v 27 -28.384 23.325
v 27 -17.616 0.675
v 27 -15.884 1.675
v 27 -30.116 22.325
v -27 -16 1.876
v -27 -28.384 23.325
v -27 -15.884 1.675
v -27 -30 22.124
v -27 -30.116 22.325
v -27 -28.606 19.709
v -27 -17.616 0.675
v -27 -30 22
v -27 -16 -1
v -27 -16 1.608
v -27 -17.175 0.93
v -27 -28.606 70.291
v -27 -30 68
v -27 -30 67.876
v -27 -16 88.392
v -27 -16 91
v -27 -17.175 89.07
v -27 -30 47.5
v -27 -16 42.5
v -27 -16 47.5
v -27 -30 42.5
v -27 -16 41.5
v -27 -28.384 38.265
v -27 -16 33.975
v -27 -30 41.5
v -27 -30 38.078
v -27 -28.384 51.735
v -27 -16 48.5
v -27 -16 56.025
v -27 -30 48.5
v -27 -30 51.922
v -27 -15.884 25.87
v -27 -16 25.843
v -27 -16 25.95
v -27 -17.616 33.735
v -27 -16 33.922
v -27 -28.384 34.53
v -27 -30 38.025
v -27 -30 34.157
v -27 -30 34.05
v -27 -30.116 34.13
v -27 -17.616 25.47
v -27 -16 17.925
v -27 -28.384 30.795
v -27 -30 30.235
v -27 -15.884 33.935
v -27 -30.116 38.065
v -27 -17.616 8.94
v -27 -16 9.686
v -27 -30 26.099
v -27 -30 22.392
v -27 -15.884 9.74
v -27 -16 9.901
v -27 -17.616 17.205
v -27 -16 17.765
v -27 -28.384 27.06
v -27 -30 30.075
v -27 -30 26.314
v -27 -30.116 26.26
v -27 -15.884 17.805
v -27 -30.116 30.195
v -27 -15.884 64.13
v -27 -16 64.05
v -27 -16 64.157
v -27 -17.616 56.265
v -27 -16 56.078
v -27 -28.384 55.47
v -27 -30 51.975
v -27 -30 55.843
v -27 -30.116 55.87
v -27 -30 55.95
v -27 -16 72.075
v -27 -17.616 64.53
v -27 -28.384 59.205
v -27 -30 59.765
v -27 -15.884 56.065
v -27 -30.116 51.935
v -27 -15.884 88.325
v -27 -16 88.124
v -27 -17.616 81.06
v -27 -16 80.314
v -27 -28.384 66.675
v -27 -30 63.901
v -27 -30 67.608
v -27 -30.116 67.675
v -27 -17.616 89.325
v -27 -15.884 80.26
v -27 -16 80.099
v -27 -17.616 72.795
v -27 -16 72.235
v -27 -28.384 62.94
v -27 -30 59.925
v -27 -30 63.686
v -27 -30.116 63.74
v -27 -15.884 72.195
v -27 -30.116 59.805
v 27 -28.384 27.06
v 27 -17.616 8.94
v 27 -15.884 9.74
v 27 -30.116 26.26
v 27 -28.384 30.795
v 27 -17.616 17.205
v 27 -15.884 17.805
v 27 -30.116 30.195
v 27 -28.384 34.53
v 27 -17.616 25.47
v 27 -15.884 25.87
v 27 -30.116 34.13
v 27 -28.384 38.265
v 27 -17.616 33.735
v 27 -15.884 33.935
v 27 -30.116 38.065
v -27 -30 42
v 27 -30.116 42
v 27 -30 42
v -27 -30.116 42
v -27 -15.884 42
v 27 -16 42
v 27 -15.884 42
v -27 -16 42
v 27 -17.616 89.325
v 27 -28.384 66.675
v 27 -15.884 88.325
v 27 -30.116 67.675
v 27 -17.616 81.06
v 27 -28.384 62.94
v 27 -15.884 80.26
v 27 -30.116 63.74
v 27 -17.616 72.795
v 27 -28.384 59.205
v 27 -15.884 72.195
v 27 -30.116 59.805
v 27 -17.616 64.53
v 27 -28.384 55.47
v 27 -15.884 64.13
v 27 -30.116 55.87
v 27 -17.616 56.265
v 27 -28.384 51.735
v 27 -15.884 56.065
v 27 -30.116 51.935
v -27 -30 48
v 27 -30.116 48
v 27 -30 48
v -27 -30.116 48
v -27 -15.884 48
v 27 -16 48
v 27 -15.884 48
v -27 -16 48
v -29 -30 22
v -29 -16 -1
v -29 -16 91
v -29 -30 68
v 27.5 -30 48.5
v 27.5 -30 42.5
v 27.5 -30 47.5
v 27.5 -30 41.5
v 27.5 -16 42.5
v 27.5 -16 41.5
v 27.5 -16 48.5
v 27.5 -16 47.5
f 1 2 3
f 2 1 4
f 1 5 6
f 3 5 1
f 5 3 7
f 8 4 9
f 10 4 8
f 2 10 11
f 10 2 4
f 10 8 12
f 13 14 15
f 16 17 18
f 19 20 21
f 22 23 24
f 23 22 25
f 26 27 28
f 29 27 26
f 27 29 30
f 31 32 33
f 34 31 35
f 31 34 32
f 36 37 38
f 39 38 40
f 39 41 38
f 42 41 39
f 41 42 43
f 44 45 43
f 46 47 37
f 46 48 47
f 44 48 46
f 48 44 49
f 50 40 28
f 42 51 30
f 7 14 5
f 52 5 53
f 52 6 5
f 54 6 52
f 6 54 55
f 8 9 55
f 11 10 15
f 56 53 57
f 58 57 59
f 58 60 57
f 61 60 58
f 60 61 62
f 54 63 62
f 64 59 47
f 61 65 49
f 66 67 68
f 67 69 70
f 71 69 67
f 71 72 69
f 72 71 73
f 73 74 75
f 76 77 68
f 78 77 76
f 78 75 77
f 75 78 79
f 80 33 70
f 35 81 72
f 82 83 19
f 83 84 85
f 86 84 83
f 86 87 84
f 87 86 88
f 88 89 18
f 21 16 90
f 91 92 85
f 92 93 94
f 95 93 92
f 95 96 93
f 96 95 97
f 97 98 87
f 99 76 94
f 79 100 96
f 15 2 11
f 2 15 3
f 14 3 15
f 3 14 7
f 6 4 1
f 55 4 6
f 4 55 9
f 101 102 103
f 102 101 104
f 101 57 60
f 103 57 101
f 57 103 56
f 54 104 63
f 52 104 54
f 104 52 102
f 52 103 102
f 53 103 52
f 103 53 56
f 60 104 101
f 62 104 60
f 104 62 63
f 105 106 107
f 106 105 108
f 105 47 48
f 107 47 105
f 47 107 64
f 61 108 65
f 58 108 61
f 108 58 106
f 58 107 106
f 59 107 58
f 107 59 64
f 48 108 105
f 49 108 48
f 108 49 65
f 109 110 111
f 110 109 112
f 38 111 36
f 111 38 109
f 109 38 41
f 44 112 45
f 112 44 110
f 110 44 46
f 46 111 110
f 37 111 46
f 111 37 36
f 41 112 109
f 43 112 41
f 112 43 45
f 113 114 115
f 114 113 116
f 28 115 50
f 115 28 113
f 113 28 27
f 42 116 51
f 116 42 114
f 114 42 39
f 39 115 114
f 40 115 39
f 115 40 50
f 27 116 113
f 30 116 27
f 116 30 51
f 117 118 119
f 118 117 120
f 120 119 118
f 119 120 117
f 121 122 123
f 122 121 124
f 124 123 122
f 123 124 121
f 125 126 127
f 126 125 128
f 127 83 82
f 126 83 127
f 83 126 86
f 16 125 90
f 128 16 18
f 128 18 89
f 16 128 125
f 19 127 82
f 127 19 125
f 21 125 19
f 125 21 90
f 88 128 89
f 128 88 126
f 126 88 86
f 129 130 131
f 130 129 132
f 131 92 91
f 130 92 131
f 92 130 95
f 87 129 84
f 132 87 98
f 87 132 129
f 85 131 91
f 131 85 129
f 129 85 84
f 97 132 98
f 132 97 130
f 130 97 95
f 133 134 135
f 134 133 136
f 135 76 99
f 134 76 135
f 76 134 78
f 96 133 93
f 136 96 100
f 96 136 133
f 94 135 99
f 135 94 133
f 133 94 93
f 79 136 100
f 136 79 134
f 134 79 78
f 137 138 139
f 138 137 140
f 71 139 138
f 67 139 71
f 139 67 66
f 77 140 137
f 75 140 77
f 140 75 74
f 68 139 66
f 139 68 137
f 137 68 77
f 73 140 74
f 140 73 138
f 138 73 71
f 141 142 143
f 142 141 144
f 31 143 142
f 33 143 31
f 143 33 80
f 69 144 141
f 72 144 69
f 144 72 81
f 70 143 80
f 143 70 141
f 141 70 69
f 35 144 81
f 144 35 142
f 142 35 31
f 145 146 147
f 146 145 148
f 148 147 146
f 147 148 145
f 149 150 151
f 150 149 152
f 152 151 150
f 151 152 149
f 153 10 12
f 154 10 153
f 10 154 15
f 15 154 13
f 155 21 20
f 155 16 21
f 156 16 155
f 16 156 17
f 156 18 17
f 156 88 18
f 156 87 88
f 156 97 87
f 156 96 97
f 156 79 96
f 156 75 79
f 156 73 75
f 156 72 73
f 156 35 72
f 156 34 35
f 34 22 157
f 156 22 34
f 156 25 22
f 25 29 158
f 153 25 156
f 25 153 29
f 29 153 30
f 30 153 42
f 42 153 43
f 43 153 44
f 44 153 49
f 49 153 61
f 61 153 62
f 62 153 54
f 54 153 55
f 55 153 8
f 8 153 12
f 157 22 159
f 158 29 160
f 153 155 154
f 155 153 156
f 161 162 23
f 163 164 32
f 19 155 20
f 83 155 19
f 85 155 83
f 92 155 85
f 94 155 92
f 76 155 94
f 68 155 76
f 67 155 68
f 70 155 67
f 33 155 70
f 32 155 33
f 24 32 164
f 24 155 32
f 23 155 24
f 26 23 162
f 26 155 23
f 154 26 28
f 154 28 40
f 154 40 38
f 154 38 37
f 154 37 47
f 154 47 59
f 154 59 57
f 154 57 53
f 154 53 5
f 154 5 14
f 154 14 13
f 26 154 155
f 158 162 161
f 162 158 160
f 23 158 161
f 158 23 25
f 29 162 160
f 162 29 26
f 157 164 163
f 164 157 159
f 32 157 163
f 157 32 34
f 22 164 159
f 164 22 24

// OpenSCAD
module diffuser_fan_b(num_iters=5) {
  for (x=[0:1:num_iters]) {
    translate([0,-23,-33 + 6 * x]) {
      scale([1,1,1 -  x / num_iters])
      rotate([-60,0,0])
          cube([54,25,2], center=true);
    }
  }

}

module trapezoid(big_side_length=92, small_side_length_offset=23, height=14, extrude_height=2) {
  translate([-27,-16,91]) {
    rotate([0,0,180])
      rotate([0,90,0]) {
        linear_extrude(height=extrude_height)
          polygon(points=[
              [0,0],
              [big_side_length,0],
              [big_side_length-small_side_length_offset,height],
              [small_side_length_offset,height],
          ]);
      }
  }

}
module small_diffuser() {
  translate([0,0,45]) {
    diffuser_fan_b();
    mirror([0,0,1]) diffuser_fan_b();
  }

  trapezoid();


  module middle_blade() {
    cube([55,14,1], center=true);
  }
  translate([0,-23,42]) {
    middle_blade();
  }

  translate([0,-23,48]) {
    middle_blade();
  }
}

small_diffuser();
